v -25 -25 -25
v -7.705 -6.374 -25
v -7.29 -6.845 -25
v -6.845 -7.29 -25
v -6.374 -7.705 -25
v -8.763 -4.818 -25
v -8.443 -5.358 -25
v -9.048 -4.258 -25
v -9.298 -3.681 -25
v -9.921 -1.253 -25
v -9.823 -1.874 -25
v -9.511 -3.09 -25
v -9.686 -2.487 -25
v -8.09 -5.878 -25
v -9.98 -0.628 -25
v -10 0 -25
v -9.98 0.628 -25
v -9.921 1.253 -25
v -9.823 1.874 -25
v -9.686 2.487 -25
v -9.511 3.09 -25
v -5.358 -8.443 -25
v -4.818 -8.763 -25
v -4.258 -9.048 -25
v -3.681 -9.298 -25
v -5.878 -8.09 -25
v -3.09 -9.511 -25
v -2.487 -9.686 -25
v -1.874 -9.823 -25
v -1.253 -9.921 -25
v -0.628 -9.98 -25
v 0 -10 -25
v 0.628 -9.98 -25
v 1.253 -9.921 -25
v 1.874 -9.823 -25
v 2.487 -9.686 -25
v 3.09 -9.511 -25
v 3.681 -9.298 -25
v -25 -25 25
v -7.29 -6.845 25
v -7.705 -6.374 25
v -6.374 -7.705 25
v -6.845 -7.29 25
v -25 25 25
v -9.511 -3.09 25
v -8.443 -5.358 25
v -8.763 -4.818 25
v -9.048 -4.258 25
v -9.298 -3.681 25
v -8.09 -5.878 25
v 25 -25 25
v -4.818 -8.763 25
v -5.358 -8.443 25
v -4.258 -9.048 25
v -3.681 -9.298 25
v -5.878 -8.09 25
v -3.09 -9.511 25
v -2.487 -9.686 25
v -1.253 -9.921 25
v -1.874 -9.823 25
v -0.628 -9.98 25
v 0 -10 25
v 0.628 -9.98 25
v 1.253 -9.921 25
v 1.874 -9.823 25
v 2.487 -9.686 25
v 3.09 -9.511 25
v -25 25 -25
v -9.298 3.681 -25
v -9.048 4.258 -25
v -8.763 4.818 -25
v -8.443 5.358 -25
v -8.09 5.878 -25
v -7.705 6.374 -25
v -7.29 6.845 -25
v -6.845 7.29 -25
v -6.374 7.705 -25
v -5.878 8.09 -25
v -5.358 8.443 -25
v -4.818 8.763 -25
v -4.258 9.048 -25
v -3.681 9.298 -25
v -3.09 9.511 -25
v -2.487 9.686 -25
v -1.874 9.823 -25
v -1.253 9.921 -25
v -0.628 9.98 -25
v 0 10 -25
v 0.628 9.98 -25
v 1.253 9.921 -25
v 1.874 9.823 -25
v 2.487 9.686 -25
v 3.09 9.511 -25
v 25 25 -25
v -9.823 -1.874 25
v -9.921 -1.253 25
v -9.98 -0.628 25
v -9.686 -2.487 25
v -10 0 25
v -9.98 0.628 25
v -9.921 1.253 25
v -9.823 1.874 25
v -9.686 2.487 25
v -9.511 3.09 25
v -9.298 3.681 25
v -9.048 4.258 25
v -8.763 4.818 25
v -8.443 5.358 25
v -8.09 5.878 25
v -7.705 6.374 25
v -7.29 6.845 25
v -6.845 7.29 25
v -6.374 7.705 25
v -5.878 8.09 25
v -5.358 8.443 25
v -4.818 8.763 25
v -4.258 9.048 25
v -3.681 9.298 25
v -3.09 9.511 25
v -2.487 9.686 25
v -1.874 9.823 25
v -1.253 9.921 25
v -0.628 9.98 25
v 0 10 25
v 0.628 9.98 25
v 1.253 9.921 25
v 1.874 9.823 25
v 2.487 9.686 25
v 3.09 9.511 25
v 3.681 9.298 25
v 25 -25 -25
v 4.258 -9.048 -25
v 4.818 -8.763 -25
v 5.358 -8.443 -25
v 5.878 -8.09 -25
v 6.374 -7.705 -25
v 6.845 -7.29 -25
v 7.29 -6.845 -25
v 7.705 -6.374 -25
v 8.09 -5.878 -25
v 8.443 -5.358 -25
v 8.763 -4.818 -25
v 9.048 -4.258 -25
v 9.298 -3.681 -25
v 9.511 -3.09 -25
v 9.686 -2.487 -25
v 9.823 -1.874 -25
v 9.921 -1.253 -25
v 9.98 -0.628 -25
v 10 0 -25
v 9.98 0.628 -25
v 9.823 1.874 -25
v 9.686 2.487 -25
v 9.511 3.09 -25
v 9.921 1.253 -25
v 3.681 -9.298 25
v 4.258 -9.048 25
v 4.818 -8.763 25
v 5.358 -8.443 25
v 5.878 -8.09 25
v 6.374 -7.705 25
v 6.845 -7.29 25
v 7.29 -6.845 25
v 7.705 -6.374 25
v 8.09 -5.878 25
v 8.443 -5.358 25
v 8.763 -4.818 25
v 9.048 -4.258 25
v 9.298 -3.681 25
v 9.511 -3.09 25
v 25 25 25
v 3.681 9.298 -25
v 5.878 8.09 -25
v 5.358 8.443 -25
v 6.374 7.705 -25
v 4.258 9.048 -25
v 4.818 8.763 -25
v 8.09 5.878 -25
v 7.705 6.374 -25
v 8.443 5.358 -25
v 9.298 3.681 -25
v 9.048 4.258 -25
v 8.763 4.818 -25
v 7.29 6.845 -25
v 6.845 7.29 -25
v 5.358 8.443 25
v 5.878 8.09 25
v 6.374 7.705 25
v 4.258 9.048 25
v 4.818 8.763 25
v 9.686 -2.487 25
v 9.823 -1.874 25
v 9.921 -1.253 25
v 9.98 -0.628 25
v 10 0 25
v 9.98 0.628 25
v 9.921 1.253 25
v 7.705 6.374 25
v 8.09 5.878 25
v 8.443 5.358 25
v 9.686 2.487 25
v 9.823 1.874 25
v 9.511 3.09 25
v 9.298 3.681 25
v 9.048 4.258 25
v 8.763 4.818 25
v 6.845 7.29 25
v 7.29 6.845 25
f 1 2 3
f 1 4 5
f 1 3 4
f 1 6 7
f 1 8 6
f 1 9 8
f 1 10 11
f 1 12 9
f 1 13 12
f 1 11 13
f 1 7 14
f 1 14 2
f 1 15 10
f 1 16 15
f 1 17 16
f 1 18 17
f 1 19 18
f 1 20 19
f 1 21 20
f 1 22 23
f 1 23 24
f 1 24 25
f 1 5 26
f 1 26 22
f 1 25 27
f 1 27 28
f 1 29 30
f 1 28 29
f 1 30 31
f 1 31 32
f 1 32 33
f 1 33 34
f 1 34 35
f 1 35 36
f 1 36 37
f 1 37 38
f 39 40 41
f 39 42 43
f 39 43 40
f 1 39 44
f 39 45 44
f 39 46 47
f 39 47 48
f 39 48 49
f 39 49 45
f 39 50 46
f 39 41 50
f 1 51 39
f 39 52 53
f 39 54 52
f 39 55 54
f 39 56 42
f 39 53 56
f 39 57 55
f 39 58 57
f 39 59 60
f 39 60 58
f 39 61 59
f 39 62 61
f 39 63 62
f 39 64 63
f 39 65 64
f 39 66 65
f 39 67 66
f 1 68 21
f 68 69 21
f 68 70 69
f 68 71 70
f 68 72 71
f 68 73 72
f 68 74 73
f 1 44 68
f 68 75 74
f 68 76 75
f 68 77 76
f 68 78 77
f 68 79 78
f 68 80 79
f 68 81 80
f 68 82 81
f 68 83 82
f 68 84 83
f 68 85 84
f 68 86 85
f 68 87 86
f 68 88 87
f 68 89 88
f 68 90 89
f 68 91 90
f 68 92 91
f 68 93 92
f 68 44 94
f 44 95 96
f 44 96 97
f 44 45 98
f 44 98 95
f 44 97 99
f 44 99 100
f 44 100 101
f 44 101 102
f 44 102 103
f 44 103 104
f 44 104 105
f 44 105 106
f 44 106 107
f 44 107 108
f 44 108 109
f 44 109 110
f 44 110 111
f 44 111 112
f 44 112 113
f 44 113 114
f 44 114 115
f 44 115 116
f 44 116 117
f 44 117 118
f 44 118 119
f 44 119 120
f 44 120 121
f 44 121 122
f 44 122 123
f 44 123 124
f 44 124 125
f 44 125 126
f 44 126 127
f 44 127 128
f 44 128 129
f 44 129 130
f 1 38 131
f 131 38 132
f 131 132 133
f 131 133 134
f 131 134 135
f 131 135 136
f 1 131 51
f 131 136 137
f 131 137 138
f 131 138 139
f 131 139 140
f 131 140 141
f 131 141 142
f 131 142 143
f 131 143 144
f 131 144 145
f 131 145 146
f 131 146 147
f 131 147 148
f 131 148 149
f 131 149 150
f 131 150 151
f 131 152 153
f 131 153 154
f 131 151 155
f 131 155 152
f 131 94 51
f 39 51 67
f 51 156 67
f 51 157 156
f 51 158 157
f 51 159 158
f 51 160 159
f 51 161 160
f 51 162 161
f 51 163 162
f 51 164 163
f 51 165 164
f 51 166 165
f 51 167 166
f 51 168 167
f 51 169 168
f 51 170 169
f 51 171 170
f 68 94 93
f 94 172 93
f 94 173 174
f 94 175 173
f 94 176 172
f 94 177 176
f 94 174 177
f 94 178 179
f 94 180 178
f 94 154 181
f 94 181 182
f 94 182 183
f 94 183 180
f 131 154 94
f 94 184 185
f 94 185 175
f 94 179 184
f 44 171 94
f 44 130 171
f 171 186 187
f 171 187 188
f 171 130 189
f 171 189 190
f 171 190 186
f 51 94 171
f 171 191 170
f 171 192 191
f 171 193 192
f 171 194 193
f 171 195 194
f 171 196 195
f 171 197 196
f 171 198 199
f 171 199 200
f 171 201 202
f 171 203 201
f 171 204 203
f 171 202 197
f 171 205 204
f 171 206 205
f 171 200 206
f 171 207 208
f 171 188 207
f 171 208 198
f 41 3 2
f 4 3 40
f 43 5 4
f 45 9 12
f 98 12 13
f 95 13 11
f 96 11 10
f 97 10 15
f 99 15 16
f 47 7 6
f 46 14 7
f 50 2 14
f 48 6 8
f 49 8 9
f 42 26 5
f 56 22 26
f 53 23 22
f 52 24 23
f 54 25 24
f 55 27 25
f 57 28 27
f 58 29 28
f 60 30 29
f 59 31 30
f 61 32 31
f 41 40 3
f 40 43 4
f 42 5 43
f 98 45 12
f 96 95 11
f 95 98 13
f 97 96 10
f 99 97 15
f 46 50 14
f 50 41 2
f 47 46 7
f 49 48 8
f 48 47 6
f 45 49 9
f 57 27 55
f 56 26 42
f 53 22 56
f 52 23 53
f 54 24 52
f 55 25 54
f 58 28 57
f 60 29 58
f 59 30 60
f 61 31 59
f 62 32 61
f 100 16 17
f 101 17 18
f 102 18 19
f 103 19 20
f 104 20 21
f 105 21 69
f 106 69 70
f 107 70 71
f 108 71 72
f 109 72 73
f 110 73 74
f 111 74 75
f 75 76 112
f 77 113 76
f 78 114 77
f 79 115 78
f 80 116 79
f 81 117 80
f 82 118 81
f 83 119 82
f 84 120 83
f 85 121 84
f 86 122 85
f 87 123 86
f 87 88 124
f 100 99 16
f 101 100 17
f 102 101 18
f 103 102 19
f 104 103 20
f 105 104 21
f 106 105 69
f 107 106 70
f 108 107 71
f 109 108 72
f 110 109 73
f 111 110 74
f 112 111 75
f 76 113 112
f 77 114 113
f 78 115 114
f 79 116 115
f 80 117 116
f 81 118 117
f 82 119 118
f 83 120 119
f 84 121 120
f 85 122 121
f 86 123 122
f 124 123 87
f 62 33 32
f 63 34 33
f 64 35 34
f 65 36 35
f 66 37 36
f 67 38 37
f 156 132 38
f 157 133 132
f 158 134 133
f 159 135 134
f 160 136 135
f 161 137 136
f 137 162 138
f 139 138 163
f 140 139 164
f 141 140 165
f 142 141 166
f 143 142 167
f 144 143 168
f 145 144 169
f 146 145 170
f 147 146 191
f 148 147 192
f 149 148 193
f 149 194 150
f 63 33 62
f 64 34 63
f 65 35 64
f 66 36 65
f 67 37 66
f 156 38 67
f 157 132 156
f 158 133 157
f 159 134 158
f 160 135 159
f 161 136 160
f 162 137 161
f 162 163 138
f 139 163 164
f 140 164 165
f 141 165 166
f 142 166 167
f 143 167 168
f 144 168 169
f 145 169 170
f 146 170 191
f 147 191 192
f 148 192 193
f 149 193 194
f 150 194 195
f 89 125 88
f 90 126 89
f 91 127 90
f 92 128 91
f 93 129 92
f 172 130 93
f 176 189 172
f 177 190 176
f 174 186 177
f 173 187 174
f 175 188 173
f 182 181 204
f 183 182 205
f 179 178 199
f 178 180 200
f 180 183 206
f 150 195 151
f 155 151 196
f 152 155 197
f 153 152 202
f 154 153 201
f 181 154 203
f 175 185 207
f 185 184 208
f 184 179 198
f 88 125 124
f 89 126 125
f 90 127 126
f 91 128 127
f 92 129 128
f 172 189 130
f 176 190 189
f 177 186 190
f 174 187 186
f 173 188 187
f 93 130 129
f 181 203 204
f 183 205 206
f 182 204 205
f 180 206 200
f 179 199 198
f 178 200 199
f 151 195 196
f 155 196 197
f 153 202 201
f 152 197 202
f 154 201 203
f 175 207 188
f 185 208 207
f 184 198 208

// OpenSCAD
// 50mm角の立方体の中央に直径20mmの貫通穴（z軸方向）

cube_size = 50;
hole_d = 20;

difference() {
    // 立方体（原点中心）
    cube([cube_size, cube_size, cube_size], center = true);

    // z軸方向の貫通穴（両端を少し延長して確実に貫通させる）
    cylinder(h = cube_size + 2, d = hole_d, center = true, $fn = 100);
}
